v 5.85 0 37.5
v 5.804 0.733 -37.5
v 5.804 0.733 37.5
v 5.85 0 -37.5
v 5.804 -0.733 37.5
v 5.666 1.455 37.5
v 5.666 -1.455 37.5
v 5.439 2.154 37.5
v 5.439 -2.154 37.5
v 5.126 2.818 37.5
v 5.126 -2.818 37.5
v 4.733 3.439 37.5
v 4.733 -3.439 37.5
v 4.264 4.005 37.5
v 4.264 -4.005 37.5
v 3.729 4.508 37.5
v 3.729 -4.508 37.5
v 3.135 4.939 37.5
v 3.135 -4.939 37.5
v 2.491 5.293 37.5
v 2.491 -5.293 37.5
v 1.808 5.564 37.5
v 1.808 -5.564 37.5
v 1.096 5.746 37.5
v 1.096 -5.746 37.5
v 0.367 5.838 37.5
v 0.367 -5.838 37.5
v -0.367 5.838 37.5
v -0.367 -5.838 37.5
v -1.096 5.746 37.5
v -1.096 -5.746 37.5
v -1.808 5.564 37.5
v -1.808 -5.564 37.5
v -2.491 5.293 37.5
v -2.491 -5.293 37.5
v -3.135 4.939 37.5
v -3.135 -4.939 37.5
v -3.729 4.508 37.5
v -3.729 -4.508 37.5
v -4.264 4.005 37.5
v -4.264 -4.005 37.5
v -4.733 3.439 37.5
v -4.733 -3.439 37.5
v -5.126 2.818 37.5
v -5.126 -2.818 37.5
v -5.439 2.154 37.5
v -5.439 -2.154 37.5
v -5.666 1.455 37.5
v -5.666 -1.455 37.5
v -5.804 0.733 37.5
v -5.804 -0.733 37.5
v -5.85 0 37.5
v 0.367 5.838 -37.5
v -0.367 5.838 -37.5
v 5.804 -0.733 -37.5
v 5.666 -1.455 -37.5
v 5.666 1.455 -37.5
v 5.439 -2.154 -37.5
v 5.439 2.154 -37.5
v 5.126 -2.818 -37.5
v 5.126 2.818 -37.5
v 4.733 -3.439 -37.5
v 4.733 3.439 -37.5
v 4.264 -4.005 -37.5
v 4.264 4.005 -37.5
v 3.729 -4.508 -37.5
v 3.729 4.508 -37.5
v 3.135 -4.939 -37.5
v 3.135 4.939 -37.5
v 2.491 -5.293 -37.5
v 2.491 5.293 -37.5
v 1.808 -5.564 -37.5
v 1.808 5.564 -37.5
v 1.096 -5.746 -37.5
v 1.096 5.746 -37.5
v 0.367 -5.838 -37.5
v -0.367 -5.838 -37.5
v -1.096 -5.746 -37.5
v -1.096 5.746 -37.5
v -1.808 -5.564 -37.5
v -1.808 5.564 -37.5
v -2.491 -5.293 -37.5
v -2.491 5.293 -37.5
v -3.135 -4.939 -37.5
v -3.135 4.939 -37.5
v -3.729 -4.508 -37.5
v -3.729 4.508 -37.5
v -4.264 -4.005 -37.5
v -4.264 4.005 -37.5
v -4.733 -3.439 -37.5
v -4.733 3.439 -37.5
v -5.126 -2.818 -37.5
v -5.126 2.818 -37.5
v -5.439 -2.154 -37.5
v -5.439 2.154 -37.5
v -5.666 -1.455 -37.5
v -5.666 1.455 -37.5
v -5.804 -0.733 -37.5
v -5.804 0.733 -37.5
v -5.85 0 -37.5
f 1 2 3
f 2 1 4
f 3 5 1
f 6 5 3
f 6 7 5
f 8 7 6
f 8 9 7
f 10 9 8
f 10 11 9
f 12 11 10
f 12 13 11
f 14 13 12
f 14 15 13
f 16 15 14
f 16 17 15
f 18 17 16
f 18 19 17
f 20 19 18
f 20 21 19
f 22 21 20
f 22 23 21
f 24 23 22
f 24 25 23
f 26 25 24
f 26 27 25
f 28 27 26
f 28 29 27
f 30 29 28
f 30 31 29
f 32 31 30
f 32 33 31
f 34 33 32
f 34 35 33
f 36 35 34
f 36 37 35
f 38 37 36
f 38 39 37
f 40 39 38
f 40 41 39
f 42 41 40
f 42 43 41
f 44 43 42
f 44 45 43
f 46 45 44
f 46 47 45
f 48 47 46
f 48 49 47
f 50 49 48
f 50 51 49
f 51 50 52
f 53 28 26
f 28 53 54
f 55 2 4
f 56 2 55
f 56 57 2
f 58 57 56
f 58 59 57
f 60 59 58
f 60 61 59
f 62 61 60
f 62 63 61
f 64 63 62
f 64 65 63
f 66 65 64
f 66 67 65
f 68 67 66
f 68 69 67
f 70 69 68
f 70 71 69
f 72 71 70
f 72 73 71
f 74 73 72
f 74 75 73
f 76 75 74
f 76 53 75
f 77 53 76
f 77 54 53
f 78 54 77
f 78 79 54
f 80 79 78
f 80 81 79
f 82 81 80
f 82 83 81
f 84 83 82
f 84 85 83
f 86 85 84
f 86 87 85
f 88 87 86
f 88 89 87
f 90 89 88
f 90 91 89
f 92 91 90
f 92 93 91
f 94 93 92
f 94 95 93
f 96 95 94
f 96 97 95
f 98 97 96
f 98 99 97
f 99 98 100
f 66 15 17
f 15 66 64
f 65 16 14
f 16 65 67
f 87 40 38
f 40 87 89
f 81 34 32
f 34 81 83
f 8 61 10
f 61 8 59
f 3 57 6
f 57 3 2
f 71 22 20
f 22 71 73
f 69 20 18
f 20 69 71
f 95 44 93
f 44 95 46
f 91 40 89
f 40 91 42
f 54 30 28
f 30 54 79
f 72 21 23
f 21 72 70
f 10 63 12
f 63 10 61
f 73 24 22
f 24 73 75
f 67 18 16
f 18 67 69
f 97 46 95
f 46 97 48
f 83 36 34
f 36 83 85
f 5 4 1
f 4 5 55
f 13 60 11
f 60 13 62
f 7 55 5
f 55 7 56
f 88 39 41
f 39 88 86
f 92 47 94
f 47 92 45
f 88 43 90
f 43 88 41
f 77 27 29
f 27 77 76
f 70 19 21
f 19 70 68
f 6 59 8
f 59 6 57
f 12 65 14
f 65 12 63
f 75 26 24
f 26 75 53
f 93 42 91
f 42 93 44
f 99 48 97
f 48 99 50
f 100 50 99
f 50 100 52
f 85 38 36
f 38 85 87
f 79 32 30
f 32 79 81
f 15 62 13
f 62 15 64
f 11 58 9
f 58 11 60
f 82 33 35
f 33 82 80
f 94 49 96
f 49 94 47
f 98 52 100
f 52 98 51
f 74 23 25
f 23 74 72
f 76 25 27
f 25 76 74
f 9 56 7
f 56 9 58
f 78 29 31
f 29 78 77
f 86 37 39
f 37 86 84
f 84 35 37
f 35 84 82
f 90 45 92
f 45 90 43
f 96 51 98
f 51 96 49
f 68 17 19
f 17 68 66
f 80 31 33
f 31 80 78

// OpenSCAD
$fn = 50;


difference() {
	union() {
		translate(v = [0, 0, -37.5000000000]) {
			cylinder(h = 75, r = 5.8500000000);
		}
	}
	union() {
		translate(v = [0, 0, -100.0000000000]) {
			cylinder(h = 200, r = 0);
		}
	}
}
